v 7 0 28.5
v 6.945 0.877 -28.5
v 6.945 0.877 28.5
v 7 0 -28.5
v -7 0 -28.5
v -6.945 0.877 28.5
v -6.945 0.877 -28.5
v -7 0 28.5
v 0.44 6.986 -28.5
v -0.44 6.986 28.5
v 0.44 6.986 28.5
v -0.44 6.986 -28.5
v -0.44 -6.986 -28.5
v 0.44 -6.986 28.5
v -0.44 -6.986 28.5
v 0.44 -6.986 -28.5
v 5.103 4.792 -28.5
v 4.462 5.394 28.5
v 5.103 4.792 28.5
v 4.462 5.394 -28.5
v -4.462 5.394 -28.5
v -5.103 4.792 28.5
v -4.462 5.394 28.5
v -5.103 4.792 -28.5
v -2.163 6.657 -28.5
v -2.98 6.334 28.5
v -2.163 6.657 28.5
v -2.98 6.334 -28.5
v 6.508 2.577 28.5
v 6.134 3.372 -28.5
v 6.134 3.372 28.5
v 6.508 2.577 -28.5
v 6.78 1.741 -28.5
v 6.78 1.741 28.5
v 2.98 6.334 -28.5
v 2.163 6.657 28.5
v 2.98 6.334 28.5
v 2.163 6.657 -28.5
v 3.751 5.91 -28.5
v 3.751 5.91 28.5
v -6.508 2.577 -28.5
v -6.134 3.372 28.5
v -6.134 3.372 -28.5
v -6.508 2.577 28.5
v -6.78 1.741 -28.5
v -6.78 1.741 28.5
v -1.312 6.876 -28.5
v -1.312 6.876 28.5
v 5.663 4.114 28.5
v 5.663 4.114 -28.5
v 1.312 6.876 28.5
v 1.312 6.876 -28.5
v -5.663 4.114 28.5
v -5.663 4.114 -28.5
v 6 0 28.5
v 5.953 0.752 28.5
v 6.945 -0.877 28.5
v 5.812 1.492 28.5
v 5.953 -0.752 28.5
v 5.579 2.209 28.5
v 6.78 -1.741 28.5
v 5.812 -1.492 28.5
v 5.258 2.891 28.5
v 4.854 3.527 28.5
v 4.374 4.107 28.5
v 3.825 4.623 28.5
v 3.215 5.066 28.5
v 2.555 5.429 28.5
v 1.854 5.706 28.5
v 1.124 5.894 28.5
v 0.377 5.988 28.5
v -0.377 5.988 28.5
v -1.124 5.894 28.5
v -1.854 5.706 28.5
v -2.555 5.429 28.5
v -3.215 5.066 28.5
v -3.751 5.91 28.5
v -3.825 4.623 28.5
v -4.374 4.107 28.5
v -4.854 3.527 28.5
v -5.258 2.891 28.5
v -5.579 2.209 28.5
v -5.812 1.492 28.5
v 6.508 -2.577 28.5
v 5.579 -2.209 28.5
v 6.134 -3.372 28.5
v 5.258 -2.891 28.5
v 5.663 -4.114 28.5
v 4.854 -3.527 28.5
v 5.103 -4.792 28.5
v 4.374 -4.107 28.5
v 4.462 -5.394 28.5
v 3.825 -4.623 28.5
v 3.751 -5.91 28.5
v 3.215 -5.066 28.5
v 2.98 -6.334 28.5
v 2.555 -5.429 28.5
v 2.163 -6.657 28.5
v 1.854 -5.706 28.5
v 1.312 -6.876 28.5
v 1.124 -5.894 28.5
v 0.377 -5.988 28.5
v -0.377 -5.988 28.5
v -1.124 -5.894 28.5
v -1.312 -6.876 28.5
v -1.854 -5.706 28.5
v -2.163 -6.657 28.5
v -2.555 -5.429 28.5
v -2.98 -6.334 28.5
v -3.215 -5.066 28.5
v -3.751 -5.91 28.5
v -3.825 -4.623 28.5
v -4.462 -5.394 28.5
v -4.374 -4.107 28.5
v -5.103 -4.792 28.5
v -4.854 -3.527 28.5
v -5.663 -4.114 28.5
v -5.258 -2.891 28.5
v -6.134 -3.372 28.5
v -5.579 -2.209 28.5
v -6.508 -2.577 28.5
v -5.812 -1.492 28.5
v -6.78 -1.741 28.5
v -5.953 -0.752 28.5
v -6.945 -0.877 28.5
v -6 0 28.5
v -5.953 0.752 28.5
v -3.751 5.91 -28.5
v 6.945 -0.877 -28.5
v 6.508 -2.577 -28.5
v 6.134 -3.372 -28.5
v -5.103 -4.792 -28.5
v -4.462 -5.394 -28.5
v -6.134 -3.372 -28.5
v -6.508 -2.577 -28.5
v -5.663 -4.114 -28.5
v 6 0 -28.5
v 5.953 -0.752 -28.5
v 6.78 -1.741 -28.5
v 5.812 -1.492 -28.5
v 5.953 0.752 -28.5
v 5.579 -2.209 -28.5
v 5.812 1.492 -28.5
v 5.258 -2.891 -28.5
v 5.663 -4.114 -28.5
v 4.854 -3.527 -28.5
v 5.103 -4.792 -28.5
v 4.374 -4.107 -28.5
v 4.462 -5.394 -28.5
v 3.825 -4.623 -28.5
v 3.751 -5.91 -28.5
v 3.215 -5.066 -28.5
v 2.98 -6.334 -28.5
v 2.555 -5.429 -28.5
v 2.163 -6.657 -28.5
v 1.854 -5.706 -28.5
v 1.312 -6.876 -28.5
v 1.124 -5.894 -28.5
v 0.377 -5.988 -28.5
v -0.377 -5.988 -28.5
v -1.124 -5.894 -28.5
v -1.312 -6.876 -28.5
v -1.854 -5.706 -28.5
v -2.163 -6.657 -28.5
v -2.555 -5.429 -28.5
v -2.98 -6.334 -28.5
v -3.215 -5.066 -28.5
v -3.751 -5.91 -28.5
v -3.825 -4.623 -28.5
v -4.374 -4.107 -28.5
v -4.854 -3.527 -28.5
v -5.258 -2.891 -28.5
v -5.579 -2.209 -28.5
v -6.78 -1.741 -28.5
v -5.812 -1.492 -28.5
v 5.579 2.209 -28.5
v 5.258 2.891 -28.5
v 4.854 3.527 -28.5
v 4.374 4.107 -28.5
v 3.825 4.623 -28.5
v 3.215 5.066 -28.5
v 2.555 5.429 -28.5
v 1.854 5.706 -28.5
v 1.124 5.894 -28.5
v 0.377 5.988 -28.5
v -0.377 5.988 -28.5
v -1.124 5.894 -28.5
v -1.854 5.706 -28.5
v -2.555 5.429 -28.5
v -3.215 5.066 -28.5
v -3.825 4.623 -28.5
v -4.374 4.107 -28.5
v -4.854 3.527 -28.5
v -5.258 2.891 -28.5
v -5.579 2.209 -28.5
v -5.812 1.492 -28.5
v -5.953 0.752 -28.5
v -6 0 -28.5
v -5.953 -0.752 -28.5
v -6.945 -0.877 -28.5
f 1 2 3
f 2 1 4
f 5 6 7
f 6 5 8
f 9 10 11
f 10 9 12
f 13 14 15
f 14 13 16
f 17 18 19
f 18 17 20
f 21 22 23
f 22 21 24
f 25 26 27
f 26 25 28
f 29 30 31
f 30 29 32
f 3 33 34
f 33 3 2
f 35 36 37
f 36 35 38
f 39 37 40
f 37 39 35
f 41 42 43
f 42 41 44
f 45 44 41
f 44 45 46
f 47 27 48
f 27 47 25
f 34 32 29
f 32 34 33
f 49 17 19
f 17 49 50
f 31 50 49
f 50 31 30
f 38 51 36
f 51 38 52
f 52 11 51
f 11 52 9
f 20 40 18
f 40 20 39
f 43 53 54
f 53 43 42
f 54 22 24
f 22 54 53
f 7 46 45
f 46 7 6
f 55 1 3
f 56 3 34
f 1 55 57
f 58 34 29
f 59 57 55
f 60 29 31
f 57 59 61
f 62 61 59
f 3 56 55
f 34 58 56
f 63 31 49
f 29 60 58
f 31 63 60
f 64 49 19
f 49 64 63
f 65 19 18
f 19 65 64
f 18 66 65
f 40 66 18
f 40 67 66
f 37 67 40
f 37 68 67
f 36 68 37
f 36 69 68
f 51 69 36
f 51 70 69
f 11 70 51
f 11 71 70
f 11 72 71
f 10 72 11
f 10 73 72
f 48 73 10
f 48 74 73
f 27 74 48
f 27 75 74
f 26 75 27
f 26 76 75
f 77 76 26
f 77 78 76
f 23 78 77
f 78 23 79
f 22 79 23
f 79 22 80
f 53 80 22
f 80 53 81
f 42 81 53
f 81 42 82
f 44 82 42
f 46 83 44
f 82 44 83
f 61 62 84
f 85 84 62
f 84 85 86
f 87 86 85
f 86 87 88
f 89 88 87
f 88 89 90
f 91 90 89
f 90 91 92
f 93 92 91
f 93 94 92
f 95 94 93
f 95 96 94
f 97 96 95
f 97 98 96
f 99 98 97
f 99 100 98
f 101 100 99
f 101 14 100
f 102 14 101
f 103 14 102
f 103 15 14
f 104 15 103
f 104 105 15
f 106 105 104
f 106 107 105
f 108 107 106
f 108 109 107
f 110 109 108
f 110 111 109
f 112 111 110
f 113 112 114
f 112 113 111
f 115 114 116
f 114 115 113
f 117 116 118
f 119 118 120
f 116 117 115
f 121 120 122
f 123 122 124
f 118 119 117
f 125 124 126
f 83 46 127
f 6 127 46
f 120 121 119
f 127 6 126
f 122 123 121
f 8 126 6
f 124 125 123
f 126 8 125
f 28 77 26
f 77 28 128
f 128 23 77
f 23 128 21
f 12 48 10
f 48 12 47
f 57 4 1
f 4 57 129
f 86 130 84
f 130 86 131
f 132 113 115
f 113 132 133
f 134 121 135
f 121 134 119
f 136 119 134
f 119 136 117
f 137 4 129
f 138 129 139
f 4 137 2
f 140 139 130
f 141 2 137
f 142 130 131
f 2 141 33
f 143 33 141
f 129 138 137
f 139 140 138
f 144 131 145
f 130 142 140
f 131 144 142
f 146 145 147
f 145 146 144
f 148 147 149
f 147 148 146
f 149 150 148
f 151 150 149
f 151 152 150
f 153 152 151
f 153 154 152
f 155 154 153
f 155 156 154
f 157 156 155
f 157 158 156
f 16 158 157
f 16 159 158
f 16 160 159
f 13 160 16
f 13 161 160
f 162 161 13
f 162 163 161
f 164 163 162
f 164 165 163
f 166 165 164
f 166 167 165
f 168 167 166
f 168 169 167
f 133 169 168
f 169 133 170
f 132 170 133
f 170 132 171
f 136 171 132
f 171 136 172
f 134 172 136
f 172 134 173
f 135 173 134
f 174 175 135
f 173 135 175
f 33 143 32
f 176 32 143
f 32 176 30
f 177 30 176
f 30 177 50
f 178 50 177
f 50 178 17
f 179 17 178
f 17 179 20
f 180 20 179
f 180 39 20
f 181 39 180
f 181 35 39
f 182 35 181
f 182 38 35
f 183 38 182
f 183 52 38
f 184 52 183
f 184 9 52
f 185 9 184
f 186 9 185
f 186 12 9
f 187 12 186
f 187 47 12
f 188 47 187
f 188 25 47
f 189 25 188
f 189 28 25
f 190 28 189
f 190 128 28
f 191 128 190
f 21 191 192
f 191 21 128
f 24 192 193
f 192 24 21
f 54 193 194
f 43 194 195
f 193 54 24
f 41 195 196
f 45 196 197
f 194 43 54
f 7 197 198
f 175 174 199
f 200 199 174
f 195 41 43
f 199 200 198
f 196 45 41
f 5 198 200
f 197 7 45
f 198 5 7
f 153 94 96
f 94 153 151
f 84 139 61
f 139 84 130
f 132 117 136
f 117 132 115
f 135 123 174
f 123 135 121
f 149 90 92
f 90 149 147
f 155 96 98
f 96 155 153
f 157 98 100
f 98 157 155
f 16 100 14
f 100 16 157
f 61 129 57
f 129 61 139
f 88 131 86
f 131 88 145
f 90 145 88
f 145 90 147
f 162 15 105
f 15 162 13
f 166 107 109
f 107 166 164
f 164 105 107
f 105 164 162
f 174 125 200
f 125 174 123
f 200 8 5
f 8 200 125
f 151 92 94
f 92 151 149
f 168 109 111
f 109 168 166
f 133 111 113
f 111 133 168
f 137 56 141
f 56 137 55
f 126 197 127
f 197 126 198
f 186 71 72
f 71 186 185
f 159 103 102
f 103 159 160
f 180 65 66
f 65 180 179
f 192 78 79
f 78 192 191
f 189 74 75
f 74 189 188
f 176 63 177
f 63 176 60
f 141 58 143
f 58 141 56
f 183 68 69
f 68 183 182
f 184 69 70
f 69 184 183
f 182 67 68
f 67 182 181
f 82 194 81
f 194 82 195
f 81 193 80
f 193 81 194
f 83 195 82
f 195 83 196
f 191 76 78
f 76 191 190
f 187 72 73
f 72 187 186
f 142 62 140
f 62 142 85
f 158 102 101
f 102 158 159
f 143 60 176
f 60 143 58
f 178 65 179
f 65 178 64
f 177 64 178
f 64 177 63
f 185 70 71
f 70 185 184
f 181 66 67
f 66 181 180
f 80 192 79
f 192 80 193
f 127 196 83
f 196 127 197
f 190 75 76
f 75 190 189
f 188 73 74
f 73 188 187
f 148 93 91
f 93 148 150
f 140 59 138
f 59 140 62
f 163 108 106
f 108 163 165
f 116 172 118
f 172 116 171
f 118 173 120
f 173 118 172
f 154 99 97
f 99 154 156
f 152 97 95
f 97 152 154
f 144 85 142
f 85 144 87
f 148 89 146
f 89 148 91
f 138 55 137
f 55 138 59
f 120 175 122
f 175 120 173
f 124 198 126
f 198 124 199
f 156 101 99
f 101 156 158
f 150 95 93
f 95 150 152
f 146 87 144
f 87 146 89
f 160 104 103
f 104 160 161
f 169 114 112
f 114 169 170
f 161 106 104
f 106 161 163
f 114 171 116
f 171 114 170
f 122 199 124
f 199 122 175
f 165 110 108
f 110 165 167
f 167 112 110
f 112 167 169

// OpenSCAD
$fn = 50;


difference() {
	union() {
		translate(v = [0, 0, -28.5000000000]) {
			cylinder(h = 57, r = 7.0000000000);
		}
	}
	union() {
		translate(v = [0, 0, -100.0000000000]) {
			cylinder(h = 200, r = 6);
		}
	}
}
